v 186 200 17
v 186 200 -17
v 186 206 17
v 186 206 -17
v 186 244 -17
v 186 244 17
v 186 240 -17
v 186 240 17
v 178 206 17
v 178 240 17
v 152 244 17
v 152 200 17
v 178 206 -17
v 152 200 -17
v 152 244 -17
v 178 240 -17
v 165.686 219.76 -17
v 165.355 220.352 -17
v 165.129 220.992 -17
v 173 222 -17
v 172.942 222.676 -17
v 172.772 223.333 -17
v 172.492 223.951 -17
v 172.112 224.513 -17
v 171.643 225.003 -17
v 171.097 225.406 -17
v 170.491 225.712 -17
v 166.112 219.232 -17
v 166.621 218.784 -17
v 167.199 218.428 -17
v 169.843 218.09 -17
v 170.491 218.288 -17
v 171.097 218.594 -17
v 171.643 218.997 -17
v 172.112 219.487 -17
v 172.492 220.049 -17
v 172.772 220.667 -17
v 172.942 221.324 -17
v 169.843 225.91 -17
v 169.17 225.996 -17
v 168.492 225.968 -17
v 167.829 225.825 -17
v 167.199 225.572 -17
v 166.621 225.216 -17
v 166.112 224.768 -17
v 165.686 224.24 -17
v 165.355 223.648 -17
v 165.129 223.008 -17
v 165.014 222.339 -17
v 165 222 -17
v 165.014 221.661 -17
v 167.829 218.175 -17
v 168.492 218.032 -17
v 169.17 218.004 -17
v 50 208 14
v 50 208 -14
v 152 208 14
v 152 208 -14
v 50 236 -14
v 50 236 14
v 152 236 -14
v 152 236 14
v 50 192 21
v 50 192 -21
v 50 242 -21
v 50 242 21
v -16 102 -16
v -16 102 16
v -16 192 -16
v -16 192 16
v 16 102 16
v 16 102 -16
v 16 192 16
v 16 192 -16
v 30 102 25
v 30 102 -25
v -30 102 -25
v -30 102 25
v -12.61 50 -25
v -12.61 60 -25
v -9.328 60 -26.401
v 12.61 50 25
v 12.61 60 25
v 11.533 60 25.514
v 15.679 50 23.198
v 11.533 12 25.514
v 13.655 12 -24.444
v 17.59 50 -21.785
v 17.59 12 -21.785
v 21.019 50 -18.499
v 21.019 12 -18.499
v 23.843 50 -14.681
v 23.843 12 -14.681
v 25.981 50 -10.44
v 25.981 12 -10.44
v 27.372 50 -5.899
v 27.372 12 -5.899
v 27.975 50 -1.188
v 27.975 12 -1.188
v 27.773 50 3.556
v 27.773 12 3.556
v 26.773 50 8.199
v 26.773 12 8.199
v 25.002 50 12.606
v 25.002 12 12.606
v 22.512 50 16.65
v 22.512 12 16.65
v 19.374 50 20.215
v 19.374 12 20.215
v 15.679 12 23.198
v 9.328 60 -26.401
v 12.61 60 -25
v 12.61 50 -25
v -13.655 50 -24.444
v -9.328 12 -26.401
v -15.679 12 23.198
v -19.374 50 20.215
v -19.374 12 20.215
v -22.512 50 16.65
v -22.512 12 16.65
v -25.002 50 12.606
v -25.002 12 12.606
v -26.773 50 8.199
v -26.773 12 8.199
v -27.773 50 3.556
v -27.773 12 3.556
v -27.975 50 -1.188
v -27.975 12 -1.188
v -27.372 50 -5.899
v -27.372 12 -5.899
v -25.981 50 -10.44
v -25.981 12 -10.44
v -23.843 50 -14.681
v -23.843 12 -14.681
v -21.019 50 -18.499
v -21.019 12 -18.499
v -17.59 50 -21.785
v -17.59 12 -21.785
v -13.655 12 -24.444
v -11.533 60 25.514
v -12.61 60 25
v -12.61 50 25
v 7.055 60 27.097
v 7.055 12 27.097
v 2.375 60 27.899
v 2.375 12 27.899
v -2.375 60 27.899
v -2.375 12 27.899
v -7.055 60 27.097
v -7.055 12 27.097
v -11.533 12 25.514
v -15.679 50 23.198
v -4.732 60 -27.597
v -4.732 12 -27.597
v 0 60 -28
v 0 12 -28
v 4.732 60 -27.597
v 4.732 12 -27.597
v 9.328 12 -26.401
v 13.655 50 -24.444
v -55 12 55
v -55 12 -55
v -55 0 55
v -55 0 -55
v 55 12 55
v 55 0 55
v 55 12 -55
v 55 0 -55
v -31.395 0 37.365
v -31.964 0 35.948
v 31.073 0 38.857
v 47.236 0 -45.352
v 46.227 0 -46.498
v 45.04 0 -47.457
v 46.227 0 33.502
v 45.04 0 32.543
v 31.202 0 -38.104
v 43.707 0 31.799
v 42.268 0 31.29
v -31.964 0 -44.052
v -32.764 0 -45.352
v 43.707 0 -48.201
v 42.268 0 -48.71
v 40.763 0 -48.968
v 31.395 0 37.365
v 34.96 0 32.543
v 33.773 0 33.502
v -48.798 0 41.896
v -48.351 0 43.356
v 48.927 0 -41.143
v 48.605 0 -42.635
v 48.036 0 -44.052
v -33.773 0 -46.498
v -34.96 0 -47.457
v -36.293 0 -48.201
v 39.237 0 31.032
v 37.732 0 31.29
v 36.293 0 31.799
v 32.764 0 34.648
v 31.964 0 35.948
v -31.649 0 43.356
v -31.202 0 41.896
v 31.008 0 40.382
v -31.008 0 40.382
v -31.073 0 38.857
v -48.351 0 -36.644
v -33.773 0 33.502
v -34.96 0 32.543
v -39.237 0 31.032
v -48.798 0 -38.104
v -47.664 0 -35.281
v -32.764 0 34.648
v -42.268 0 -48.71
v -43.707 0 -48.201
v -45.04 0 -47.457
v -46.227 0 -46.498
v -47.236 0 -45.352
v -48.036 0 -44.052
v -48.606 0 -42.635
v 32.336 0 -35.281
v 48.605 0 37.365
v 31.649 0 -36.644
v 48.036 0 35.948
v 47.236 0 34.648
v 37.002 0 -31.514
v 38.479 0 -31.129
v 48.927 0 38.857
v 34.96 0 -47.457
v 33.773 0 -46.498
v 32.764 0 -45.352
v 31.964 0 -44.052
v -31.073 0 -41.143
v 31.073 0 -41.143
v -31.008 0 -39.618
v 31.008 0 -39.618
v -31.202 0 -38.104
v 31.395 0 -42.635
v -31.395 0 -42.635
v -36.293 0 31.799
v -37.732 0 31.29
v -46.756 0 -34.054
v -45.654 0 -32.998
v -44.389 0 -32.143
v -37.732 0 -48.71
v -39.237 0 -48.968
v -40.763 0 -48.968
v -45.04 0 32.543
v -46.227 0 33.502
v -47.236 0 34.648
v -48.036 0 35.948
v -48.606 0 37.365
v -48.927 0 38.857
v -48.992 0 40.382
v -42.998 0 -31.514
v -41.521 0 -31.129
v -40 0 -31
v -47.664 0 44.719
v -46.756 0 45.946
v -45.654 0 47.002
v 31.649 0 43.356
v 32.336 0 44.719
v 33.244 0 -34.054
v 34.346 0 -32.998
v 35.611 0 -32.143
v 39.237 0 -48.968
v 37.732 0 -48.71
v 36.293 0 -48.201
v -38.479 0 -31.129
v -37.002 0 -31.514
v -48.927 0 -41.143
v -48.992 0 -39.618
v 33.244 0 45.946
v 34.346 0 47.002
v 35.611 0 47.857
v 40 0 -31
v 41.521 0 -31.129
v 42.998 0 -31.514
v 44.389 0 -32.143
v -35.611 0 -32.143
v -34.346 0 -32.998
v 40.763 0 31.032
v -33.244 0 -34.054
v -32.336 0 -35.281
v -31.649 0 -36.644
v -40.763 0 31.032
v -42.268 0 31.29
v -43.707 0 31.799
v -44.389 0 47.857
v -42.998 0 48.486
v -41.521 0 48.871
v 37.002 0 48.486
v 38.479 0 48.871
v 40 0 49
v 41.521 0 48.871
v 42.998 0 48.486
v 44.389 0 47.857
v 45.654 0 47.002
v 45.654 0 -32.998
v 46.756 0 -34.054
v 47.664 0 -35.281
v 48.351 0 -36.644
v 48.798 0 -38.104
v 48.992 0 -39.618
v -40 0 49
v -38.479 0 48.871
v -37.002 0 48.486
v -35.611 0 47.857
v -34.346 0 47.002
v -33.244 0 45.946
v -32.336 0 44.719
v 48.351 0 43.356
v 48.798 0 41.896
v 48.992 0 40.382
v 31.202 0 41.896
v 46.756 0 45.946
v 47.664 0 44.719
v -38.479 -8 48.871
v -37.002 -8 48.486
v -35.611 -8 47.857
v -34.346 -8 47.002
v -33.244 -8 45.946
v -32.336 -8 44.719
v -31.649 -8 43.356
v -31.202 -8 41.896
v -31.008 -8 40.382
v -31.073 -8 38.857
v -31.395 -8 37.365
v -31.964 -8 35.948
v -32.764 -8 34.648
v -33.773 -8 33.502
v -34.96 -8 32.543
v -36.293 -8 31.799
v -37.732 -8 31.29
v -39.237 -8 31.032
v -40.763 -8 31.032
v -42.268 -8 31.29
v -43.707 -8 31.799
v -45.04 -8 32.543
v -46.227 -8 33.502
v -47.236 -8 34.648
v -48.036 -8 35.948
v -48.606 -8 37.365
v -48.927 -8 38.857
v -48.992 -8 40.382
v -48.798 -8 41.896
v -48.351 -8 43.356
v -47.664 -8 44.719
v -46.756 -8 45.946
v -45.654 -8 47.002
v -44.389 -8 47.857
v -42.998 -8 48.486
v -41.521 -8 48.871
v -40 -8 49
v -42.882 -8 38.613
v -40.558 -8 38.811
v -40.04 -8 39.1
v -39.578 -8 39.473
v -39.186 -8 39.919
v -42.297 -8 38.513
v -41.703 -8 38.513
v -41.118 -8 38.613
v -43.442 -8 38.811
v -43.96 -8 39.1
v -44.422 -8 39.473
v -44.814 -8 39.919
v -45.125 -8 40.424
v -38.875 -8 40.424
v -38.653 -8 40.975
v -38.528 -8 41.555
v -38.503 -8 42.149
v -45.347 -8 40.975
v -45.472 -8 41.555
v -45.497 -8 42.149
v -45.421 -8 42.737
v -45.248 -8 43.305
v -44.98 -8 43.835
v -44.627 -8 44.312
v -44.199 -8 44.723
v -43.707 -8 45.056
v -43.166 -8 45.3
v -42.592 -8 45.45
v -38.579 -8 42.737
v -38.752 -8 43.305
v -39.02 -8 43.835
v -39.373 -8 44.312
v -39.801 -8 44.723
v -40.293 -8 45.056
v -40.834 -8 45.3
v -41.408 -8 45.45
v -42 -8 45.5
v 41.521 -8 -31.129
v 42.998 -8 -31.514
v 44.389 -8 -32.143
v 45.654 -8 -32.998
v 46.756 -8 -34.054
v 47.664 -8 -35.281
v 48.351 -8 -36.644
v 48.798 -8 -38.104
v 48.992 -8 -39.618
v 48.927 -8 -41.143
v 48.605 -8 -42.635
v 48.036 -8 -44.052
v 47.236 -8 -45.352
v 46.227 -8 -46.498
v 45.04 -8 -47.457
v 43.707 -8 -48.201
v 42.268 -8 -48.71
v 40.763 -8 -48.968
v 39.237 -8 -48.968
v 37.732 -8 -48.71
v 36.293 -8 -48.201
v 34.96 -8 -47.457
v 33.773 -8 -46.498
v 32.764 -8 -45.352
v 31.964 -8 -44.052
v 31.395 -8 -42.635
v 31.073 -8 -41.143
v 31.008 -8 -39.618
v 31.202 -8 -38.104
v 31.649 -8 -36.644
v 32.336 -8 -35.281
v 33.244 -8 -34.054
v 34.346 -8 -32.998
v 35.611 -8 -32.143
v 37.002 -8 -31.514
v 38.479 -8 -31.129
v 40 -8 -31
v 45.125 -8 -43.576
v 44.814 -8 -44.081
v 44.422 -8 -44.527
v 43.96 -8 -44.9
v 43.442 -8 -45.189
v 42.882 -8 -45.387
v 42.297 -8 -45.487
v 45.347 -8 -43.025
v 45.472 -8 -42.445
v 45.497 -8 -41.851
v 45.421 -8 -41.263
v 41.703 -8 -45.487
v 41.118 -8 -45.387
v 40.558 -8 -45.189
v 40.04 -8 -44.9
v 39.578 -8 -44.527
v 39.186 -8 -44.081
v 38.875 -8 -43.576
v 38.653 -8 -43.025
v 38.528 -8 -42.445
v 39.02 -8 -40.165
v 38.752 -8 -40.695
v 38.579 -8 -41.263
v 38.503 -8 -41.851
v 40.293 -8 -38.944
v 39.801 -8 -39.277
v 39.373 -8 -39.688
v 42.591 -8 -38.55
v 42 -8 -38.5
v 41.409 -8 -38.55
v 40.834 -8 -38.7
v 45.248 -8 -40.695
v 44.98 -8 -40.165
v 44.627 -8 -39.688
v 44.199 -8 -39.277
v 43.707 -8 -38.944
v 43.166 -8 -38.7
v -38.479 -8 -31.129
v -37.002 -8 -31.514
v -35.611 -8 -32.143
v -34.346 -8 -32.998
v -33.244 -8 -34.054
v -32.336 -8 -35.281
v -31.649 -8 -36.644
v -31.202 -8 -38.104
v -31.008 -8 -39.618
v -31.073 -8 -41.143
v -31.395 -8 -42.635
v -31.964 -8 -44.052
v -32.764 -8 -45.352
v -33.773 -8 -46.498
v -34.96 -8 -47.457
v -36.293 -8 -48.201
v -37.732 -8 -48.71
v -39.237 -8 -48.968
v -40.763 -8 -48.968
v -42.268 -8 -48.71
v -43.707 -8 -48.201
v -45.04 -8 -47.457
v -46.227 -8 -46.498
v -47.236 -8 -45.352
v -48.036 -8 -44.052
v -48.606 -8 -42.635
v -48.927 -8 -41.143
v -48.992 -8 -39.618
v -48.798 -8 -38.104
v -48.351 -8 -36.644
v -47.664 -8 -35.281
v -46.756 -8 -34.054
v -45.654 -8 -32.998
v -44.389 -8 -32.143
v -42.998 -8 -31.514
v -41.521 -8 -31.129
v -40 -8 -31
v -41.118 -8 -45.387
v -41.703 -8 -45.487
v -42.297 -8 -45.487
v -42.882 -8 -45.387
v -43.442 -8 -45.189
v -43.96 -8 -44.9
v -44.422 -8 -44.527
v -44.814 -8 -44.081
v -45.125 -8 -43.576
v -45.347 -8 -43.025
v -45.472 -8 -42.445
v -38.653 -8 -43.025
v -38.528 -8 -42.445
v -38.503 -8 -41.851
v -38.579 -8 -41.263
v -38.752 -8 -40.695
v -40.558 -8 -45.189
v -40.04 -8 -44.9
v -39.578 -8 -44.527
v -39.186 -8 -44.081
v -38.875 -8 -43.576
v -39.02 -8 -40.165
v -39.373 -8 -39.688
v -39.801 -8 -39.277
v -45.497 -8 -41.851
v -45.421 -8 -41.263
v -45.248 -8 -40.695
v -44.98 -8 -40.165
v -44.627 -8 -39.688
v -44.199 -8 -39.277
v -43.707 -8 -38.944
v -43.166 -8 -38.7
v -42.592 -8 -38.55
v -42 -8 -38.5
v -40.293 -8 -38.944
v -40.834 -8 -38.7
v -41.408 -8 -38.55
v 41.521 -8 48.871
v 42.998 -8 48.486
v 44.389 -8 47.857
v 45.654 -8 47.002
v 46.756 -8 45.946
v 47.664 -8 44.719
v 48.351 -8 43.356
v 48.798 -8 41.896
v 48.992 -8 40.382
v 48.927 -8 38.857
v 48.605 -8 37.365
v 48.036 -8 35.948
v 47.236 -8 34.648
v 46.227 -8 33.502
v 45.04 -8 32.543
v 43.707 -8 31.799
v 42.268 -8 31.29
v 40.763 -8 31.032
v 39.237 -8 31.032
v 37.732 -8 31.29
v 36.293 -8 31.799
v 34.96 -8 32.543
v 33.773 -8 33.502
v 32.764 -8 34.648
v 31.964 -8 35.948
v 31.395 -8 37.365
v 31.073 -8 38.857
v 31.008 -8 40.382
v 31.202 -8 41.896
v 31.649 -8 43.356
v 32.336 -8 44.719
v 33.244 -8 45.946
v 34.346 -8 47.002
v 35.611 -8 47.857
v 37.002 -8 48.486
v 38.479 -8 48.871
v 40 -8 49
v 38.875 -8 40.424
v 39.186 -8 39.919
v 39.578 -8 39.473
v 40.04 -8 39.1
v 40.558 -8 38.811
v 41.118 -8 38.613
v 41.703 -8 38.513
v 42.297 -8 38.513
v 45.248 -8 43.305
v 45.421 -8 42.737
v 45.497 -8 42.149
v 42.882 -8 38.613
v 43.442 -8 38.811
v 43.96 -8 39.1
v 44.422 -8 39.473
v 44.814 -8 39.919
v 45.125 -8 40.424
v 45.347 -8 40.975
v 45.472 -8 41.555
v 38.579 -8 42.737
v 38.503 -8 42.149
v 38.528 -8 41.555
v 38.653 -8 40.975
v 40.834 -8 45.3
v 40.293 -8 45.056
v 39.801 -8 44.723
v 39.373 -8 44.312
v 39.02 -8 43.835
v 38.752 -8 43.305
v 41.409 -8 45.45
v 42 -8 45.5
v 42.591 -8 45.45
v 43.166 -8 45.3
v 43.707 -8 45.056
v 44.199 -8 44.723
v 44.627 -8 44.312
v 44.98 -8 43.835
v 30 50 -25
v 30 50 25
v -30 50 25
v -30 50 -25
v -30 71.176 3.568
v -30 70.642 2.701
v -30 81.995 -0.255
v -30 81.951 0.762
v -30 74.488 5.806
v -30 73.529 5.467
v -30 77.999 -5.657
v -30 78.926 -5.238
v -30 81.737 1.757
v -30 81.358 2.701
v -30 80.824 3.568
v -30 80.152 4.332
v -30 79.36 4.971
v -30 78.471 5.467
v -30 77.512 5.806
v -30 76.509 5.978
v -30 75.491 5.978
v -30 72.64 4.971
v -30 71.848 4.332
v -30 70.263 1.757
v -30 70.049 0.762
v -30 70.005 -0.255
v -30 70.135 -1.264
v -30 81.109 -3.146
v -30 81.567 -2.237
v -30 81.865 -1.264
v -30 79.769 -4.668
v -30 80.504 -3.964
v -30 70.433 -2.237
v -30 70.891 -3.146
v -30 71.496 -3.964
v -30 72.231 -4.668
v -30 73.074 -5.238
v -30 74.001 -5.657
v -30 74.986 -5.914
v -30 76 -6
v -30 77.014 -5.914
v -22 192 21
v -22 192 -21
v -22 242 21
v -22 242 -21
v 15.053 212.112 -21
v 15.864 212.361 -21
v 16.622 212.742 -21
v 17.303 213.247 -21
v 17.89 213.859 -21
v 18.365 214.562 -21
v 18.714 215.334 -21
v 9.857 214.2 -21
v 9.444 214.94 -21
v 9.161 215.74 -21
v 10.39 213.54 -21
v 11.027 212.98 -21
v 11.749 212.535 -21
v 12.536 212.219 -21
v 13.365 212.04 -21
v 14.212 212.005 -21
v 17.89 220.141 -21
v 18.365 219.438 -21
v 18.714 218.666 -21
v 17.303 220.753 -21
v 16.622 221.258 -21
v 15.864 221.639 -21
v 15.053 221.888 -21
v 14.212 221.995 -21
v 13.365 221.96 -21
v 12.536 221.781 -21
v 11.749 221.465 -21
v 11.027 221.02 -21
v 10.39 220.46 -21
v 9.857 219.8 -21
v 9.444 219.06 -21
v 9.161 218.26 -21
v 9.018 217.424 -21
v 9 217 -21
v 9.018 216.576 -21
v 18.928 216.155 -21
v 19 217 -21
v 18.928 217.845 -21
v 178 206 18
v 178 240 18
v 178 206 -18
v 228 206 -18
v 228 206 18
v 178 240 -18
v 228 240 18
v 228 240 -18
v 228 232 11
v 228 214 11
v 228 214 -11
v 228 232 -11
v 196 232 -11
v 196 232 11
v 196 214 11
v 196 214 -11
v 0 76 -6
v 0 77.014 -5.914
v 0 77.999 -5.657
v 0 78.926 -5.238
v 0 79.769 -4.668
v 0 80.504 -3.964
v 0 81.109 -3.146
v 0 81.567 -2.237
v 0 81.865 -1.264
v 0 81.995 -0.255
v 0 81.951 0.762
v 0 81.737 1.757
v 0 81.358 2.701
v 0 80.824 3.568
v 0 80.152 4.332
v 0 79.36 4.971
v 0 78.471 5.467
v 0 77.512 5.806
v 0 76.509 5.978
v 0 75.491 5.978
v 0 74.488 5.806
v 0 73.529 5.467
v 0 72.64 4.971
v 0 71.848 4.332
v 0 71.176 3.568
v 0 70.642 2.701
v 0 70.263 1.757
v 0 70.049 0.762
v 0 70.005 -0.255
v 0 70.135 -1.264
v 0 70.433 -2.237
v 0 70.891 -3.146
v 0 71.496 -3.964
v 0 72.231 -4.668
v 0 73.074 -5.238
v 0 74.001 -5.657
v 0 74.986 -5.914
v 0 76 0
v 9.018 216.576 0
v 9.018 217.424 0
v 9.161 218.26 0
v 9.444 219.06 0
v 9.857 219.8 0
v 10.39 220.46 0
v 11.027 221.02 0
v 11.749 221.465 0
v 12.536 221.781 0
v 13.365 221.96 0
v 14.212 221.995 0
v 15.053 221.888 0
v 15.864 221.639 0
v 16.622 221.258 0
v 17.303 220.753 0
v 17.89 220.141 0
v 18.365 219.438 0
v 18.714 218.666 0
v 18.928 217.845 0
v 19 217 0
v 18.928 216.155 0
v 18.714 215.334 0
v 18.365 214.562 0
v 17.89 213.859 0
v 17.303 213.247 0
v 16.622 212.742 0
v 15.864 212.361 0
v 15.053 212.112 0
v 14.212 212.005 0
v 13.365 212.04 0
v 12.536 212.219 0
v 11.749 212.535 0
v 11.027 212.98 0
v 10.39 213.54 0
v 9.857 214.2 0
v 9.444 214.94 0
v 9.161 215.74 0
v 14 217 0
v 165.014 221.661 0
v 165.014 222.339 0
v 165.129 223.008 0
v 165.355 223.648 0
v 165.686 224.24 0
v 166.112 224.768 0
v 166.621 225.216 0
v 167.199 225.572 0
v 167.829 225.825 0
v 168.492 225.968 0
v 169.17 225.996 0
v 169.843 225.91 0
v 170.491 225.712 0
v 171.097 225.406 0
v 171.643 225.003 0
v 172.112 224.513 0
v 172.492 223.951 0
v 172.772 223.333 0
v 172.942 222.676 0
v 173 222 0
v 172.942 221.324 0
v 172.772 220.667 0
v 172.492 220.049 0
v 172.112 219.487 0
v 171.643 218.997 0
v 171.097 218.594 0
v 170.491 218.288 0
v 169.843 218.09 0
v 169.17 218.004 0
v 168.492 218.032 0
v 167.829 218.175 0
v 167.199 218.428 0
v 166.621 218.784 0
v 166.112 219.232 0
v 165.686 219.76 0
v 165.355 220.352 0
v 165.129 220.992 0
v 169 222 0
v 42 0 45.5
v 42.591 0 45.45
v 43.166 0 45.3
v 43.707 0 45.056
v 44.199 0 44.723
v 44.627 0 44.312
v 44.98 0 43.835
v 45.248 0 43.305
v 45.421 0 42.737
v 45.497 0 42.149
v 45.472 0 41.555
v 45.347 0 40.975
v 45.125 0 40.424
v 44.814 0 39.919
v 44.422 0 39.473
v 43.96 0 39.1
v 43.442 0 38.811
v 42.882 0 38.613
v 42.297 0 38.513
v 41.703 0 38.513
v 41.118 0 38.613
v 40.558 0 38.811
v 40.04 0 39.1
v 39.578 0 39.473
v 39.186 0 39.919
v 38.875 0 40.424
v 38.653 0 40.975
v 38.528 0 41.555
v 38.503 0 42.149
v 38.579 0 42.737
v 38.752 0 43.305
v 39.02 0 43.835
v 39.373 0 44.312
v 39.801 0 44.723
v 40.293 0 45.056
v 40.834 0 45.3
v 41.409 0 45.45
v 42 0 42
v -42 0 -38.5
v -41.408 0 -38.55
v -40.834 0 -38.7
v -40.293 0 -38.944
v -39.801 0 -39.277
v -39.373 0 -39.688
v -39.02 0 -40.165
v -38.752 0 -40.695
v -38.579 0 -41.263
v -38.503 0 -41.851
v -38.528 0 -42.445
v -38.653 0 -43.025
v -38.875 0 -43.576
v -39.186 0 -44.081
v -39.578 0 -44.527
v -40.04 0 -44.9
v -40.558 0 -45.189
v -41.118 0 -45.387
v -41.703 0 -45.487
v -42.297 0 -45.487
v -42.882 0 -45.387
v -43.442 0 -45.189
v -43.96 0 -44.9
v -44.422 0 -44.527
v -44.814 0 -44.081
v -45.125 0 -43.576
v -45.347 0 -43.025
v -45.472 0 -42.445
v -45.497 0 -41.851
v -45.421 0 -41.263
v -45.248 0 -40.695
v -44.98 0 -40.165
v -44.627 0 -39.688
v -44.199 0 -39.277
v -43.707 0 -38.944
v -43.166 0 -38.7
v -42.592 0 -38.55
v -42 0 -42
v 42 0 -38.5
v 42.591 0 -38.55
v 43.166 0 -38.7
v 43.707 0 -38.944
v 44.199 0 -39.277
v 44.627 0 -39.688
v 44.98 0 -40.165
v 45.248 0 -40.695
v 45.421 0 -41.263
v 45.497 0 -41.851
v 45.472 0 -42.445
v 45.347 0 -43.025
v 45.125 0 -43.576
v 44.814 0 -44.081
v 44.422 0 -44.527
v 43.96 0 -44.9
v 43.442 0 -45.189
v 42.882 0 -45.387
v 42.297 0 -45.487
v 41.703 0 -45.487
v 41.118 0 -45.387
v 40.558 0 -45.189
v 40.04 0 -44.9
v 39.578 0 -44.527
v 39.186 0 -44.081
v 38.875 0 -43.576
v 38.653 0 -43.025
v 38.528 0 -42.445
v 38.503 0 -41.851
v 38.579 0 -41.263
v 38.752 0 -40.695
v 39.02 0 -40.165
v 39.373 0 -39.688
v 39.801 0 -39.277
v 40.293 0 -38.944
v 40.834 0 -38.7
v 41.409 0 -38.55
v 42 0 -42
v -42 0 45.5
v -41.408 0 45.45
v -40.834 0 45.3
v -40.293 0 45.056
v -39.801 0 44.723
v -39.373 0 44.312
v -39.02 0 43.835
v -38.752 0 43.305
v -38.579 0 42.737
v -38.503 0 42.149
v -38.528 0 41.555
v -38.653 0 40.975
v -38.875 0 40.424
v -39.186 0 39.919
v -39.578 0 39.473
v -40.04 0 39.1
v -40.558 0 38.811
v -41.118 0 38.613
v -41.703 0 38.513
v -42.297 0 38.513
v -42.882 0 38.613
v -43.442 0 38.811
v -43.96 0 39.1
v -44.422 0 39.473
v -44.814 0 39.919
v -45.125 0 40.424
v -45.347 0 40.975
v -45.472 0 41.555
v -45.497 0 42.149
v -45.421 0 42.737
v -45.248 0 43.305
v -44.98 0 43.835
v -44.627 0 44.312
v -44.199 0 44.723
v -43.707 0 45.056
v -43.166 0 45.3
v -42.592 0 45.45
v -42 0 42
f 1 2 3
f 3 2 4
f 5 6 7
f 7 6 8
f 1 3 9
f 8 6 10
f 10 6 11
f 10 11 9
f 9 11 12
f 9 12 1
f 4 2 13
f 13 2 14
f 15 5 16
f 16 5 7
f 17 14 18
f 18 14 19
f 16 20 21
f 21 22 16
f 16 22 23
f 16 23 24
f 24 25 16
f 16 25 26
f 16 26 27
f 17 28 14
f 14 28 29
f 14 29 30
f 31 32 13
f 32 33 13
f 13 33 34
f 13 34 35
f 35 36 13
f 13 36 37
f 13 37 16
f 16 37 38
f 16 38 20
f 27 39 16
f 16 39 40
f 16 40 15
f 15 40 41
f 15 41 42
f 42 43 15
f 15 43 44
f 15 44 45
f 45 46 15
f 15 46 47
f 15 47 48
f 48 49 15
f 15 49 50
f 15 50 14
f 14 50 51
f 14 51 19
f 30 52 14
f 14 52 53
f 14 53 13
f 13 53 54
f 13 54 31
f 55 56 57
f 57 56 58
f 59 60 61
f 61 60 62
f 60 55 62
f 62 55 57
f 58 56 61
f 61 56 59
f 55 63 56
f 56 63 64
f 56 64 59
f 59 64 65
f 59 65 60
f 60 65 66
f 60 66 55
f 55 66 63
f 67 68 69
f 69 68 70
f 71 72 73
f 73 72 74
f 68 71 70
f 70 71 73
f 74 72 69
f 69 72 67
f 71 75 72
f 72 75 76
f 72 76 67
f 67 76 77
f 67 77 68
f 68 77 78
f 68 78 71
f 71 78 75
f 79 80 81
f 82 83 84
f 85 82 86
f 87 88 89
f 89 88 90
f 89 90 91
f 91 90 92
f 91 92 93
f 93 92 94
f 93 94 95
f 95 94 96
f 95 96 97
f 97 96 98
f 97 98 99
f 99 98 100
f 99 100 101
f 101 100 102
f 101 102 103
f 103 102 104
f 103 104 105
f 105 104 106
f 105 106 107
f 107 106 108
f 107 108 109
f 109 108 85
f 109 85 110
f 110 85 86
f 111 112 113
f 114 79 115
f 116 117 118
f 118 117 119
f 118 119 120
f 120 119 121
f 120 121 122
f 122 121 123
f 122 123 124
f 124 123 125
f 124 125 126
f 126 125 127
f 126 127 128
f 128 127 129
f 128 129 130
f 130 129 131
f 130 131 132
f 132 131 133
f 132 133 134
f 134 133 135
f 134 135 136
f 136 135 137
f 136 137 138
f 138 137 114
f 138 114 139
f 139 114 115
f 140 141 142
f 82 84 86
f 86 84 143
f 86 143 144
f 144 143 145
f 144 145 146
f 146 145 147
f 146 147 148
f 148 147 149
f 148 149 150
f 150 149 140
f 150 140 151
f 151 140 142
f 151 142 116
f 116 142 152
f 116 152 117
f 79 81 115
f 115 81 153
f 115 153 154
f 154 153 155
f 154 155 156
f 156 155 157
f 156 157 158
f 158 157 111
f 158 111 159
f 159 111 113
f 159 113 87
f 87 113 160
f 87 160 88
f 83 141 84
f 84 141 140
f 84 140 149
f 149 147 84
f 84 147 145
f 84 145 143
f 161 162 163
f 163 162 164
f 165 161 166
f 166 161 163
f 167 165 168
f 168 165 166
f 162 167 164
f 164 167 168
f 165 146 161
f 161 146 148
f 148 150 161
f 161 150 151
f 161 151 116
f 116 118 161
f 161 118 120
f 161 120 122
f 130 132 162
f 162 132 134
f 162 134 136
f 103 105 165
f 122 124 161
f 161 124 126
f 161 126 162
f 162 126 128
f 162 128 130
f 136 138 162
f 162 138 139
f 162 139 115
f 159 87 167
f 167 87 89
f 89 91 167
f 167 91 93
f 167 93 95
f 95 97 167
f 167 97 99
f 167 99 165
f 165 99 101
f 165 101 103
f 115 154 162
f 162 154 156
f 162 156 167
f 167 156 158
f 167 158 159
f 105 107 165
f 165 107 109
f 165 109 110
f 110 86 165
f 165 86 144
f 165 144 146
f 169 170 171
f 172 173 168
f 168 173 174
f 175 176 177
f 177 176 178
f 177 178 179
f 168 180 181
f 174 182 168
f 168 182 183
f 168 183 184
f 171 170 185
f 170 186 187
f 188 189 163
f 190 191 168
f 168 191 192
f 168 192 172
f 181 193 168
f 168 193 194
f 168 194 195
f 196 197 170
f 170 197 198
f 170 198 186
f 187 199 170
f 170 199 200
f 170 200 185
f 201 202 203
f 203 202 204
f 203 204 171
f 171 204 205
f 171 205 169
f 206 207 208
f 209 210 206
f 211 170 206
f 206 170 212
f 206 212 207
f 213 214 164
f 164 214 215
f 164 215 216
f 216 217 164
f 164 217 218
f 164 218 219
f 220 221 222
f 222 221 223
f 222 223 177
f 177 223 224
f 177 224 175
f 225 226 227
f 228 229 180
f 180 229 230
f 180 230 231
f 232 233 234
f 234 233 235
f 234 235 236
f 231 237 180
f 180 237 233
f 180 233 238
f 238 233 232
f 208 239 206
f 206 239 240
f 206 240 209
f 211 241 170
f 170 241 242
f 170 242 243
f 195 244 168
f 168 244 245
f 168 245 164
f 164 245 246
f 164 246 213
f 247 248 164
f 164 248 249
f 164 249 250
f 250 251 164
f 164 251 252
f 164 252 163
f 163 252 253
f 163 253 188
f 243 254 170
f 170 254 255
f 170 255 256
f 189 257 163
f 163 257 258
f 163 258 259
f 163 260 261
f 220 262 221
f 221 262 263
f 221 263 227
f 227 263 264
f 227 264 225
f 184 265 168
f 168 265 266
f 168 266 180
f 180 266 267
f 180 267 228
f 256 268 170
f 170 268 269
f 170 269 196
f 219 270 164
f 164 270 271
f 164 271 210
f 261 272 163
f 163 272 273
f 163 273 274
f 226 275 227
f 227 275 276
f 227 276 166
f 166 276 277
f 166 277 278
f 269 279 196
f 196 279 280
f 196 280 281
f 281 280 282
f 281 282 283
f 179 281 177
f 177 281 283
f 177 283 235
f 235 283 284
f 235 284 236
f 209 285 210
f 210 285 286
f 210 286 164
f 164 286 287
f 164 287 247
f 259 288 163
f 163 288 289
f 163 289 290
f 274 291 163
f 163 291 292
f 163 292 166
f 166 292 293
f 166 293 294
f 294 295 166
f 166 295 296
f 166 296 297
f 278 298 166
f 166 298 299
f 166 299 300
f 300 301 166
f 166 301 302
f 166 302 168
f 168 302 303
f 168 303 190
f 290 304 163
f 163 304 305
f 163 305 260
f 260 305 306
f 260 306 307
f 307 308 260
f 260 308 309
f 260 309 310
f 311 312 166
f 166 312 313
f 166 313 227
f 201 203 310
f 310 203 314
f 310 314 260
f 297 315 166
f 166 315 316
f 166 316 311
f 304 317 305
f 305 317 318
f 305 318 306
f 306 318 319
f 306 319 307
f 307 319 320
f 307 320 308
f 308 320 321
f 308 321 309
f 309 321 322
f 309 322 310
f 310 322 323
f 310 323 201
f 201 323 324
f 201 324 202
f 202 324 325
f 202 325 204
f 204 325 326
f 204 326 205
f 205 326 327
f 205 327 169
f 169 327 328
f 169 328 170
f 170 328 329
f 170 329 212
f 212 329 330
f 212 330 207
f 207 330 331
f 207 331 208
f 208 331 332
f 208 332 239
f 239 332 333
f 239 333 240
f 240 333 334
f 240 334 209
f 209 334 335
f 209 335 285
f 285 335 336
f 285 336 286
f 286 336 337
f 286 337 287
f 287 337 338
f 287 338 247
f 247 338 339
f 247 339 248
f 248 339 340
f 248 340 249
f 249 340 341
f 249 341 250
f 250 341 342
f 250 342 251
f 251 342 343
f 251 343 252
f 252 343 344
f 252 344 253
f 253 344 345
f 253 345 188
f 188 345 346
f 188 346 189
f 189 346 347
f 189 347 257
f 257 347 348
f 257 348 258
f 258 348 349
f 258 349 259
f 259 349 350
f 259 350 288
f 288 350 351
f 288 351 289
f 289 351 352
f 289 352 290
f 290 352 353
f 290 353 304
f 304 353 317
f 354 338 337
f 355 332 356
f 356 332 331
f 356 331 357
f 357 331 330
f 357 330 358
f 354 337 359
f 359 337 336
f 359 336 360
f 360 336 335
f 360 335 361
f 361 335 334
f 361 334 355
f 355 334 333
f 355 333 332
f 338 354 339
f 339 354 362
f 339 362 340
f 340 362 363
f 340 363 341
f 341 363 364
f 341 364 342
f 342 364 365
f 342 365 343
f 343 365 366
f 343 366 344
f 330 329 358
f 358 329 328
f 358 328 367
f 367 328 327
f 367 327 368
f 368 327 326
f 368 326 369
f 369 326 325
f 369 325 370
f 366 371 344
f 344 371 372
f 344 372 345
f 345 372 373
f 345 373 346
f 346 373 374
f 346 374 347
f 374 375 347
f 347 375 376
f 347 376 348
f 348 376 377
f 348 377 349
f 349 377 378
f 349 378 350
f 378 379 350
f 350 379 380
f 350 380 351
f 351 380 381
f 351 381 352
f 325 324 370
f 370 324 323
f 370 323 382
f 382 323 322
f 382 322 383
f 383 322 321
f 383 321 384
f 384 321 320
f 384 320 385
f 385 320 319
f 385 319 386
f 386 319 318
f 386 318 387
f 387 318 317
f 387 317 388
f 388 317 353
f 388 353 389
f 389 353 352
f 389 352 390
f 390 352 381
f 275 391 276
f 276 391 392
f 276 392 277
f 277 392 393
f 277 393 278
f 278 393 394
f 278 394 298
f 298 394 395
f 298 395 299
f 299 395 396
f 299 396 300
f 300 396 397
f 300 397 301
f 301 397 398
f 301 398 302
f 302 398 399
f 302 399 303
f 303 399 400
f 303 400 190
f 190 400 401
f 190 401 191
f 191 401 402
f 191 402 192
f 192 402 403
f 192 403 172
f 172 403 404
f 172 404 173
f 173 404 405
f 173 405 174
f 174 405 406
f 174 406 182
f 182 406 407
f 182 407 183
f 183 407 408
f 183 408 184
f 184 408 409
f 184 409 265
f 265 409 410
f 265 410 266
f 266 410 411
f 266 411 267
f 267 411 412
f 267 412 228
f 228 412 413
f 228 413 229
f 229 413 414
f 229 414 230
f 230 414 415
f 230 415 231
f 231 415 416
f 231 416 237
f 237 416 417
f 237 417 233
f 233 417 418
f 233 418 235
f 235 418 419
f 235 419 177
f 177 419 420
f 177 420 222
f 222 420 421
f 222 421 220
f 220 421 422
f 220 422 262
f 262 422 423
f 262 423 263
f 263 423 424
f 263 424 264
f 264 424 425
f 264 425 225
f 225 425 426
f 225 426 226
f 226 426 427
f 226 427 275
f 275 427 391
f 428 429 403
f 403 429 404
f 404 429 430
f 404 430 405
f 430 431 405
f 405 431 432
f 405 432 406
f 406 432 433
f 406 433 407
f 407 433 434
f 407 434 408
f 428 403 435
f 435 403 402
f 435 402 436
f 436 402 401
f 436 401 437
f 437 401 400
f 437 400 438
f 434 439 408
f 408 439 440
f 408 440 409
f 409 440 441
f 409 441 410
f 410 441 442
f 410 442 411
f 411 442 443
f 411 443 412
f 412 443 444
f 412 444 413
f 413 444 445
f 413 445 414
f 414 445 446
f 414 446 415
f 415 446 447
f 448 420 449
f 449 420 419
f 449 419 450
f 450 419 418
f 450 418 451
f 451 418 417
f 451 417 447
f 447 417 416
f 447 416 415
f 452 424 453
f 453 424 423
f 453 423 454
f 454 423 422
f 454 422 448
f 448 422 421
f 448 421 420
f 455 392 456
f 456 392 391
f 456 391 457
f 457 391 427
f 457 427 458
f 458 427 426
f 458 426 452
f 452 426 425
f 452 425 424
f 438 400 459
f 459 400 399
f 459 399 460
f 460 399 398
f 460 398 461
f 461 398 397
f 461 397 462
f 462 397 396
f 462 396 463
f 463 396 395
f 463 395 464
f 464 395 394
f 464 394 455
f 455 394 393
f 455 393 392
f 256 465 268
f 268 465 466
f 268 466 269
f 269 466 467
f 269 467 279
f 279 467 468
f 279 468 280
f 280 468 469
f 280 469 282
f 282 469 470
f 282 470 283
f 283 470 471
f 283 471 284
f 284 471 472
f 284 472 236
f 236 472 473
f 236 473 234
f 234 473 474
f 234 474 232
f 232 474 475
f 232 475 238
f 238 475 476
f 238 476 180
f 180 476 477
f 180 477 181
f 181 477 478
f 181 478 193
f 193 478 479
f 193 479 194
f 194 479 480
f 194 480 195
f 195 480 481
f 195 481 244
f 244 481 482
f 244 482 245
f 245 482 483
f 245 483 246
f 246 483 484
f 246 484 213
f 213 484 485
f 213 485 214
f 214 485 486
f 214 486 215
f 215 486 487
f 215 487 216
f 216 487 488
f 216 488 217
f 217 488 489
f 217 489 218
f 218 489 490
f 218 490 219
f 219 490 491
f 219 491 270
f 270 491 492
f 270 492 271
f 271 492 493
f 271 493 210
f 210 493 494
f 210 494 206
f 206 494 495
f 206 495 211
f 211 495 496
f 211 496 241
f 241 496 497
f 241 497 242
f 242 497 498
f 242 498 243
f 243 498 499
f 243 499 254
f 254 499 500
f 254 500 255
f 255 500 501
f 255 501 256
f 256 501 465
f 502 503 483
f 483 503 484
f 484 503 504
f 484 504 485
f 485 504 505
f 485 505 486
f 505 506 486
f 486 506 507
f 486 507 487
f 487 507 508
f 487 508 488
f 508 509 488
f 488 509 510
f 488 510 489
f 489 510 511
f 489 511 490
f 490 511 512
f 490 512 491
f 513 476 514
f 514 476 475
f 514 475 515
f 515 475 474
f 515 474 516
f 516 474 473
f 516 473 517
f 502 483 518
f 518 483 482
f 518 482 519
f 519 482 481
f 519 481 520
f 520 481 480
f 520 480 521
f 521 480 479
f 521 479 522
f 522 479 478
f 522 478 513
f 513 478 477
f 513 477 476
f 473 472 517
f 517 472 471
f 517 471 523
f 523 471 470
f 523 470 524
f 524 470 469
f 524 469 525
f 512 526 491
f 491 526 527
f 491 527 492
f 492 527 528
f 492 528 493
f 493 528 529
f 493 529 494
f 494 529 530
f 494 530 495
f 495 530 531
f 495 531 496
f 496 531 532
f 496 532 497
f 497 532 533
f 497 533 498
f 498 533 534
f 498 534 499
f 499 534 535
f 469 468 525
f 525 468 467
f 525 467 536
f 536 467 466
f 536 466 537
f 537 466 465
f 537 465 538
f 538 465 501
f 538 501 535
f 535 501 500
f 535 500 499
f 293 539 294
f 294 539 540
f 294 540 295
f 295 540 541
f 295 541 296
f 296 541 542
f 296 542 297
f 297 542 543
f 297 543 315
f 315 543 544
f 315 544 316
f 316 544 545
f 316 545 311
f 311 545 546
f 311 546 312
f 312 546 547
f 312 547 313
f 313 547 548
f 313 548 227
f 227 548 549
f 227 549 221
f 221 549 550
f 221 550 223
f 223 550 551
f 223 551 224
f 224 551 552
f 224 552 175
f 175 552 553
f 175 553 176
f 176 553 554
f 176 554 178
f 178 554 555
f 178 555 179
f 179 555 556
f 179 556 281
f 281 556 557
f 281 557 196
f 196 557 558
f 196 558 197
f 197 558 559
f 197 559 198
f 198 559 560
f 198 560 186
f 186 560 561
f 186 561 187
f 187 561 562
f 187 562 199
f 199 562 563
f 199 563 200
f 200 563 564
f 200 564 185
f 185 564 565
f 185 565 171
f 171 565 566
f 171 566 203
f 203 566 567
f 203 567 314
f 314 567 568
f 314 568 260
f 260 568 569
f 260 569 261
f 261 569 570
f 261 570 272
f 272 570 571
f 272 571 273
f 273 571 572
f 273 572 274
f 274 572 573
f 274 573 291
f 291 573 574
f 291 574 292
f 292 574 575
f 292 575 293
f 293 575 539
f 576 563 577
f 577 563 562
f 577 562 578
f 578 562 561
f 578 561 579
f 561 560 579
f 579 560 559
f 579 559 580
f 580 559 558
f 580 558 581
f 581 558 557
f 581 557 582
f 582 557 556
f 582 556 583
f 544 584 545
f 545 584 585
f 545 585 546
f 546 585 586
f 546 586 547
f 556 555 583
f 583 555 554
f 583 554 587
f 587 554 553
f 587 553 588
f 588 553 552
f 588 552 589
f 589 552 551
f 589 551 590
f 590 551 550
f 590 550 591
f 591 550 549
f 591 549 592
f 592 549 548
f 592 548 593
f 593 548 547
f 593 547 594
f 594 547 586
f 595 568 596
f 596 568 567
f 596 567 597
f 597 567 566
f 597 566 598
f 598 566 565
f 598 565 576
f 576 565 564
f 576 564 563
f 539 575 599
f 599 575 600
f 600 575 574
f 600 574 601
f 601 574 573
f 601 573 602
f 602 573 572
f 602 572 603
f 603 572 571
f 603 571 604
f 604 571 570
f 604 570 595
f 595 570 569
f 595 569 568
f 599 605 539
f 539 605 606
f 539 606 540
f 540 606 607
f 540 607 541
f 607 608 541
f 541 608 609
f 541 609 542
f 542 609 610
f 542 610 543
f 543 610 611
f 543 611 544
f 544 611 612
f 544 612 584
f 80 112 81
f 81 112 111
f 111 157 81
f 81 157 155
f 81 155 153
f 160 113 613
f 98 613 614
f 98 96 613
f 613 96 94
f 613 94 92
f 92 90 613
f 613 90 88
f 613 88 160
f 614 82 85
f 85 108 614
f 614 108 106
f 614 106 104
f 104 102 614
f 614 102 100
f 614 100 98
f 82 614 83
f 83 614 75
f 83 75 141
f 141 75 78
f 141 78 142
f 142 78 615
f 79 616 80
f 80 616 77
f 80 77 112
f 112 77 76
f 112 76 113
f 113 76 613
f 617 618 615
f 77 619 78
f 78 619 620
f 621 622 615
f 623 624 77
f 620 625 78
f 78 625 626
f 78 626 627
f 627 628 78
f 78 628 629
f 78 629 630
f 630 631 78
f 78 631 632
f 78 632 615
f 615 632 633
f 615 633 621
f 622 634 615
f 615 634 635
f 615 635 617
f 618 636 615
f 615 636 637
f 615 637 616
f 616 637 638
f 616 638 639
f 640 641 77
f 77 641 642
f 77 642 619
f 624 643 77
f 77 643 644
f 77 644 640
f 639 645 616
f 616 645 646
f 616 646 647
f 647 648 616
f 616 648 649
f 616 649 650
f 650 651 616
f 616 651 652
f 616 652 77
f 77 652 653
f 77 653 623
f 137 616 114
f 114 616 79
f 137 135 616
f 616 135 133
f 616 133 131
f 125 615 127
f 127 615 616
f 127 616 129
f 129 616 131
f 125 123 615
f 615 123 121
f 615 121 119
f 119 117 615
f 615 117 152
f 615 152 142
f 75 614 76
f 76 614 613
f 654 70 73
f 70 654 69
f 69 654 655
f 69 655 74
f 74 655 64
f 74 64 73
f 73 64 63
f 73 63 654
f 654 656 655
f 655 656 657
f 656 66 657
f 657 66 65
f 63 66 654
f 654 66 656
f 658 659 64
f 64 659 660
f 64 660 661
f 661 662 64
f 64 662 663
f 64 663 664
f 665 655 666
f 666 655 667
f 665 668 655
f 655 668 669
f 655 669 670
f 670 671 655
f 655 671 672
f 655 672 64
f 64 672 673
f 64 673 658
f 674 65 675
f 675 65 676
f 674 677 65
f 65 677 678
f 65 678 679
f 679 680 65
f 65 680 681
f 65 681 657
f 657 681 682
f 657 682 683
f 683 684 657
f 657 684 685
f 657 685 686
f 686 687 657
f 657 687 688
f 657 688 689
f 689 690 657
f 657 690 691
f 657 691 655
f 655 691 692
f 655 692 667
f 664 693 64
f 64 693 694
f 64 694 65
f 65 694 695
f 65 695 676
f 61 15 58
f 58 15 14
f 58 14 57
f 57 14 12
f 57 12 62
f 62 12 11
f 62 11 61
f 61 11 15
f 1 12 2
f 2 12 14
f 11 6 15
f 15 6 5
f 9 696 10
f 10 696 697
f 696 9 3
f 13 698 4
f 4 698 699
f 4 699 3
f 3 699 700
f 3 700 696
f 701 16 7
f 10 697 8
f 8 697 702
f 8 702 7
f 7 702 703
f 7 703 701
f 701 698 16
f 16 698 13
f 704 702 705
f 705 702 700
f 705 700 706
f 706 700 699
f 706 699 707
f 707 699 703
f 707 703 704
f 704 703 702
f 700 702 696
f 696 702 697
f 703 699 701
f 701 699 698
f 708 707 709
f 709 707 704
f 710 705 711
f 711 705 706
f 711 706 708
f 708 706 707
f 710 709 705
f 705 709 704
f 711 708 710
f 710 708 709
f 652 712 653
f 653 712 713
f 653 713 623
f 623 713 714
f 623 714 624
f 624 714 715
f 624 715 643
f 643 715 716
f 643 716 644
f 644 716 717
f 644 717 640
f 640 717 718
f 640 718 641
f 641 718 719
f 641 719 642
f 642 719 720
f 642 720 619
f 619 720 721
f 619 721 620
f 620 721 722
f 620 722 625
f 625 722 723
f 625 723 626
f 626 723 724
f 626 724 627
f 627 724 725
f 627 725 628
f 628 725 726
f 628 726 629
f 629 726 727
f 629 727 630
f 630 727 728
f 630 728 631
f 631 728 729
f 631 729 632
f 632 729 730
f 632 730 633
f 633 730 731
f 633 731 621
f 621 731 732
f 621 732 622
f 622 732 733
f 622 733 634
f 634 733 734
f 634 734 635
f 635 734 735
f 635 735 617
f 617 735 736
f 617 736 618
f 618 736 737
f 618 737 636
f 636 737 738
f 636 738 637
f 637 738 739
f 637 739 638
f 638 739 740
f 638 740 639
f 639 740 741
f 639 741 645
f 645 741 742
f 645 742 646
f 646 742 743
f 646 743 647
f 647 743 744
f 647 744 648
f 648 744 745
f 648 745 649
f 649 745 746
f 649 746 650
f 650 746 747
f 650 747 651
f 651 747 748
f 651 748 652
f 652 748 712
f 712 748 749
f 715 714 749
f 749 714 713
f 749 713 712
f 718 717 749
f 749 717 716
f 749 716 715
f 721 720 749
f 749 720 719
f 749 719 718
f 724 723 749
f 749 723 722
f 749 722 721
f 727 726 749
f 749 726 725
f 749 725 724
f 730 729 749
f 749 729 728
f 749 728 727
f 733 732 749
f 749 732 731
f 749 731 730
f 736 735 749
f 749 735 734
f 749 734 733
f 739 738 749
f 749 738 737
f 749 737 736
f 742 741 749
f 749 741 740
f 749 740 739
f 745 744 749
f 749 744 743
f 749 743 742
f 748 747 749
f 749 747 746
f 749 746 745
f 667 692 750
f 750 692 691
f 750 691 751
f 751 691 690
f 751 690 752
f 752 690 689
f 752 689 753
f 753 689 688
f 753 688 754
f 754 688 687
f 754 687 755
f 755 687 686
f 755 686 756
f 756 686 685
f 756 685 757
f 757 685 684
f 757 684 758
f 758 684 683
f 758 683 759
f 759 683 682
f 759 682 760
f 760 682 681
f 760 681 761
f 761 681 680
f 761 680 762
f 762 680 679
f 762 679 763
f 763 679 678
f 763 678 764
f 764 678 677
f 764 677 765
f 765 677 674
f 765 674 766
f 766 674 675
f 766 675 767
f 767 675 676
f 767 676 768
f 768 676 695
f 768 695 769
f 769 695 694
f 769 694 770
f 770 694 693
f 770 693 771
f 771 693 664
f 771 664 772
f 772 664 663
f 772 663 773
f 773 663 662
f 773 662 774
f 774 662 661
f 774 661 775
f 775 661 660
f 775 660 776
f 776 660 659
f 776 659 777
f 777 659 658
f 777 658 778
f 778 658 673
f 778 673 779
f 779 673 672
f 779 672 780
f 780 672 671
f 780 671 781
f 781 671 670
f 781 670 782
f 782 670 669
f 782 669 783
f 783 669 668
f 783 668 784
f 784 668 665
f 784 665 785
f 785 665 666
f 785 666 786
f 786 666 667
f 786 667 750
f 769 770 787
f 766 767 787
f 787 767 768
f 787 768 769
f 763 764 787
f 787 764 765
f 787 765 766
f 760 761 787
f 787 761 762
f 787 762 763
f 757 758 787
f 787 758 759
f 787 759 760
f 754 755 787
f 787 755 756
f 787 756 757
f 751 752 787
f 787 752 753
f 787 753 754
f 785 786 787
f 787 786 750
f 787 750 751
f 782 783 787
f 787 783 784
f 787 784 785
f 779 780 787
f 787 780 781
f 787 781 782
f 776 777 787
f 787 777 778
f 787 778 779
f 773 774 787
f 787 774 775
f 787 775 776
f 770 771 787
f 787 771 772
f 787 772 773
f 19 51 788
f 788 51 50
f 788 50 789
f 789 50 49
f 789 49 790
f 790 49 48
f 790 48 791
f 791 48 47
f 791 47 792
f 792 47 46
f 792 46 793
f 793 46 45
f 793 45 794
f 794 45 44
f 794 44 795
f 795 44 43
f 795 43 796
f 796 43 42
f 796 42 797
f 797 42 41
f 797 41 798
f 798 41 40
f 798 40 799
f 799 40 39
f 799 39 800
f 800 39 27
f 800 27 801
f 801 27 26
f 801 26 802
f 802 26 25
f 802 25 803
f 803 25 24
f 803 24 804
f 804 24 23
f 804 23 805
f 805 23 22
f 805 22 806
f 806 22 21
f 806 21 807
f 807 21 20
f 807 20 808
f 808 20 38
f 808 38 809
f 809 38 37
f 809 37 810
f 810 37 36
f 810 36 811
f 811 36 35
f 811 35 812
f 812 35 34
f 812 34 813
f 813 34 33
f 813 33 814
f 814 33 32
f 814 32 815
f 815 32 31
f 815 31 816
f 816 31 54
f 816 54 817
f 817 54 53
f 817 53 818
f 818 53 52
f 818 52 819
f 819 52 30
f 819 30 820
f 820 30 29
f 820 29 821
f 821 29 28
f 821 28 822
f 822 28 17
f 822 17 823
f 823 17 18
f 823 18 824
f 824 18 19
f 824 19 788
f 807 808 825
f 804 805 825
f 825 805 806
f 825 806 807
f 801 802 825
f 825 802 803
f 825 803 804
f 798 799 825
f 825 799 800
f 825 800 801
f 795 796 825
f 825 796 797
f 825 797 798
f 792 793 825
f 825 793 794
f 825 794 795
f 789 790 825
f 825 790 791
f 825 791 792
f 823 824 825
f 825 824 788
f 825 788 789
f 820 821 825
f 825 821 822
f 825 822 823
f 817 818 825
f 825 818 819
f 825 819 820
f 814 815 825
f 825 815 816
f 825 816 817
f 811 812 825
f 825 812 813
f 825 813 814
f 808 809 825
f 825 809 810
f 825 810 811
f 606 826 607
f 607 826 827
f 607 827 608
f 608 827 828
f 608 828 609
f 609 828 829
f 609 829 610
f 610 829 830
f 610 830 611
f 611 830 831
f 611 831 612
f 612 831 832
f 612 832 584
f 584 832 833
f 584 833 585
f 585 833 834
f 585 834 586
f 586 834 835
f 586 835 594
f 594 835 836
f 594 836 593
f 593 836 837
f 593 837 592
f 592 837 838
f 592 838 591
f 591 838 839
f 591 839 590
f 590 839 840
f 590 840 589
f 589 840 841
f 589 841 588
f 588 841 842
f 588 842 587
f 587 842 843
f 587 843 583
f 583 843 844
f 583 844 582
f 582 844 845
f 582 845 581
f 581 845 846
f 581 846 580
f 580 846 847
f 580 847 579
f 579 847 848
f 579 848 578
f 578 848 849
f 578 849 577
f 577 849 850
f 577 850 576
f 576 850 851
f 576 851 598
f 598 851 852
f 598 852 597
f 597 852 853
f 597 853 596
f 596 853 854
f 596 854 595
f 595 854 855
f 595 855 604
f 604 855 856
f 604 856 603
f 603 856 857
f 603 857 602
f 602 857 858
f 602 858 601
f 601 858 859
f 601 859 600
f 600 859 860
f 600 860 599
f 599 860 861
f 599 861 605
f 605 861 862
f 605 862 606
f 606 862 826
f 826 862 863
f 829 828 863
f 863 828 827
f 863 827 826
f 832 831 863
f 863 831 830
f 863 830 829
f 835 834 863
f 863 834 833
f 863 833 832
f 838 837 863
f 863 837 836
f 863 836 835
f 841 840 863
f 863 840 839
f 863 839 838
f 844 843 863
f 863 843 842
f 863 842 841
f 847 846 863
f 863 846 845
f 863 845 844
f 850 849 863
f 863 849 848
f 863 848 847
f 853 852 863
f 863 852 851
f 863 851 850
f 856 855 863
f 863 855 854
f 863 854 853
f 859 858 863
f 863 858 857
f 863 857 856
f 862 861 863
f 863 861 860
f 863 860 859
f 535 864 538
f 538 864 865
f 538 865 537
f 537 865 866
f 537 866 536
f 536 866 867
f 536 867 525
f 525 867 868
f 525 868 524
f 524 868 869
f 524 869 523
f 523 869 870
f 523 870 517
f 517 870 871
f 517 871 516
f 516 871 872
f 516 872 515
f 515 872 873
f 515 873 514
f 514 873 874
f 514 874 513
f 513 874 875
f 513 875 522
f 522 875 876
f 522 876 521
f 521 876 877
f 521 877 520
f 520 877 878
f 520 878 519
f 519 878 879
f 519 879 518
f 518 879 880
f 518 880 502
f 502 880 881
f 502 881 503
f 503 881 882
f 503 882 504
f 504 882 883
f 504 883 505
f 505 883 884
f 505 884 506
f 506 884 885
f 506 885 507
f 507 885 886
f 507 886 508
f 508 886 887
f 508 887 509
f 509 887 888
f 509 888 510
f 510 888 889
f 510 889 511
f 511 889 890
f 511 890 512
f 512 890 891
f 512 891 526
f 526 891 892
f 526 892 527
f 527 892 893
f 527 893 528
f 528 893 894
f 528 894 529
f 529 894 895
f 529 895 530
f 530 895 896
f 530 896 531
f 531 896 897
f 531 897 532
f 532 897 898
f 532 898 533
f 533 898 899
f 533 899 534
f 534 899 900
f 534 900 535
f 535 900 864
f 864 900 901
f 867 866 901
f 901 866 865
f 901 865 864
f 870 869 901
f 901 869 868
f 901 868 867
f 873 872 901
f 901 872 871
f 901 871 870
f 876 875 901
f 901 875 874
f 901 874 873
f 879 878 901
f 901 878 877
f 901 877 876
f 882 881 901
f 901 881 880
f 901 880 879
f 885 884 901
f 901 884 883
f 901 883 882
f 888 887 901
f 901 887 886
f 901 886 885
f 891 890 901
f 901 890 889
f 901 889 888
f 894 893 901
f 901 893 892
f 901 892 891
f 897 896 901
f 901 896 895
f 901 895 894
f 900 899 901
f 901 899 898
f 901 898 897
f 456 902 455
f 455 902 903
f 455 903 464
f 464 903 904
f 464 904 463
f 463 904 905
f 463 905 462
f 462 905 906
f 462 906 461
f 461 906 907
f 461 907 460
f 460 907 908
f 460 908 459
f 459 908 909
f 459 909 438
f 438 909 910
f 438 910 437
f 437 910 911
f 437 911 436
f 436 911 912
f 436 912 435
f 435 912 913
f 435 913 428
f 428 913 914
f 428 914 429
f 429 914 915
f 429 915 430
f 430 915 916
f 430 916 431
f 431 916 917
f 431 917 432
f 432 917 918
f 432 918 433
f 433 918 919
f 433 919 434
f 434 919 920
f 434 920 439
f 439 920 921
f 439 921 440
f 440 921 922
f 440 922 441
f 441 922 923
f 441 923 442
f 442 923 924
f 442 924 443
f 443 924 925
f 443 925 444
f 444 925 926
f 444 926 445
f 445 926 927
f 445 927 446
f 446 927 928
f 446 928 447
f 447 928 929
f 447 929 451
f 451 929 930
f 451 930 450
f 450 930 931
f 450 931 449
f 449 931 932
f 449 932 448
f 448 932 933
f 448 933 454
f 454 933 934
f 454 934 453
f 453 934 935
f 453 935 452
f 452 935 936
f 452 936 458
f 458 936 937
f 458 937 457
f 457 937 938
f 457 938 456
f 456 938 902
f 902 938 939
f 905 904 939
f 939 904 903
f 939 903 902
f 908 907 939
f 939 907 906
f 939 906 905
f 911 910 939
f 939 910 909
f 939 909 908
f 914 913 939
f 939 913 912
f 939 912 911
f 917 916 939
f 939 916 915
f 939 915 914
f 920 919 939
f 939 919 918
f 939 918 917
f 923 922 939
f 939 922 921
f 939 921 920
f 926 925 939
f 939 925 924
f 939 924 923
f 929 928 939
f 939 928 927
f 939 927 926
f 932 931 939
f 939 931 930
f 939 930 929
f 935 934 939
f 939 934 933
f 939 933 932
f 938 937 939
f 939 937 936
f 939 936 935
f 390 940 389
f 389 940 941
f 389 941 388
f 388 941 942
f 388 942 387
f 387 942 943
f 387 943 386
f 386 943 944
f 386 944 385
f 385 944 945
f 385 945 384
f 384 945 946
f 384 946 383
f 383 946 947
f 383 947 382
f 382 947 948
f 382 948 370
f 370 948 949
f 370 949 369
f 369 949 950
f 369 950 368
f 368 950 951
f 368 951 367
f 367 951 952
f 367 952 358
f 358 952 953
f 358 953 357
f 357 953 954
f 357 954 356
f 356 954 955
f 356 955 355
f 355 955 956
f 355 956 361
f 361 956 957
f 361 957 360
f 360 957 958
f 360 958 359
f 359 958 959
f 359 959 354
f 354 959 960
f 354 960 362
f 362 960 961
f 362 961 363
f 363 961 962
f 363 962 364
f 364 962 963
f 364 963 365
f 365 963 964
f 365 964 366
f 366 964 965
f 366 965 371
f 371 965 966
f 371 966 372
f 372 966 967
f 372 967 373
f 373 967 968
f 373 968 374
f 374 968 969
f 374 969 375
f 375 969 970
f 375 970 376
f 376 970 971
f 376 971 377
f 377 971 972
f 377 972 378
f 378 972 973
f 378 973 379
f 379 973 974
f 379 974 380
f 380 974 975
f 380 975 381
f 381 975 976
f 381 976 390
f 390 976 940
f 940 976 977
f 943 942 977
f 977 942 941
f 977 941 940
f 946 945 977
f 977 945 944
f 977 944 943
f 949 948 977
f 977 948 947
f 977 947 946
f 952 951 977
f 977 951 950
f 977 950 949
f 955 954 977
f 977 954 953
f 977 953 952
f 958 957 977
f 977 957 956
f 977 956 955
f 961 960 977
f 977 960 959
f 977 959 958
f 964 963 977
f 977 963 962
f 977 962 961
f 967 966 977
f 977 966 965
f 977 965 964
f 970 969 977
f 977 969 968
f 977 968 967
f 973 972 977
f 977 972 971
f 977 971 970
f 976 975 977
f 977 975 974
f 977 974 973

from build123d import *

# Parameters (mm, degrees)
SKETCH1_W            = 110
SKETCH1_H            = 110
BOSS_EXTRUDE1_DEPTH  = 12
SKETCH2_R            = 9
BOSS_EXTRUDE2_DEPTH  = 8
SKETCH3_R            = 28
BOSS_EXTRUDE3_DEPTH  = 60
SKETCH4_W            = 60
SKETCH4_H            = 52
BOSS_EXTRUDE4_DEPTH  = 25
SKETCH5_W            = 32
SKETCH5_H            = 107
BOSS_EXTRUDE5_DEPTH  = 16
SKETCH6_W            = 72
SKETCH6_H            = 50
BOSS_EXTRUDE6_DEPTH  = 21
SKETCH7_R            = 18
BOSS_EXTRUDE7_DEPTH  = 6
SKETCH8_W            = 115
SKETCH8_H            = 28
BOSS_EXTRUDE8_DEPTH  = 14
SKETCH9_W            = 34
SKETCH9_H            = 44
BOSS_EXTRUDE9_DEPTH  = 17
SKETCH10_R           = 13
BOSS_EXTRUDE10_DEPTH = 15
SKETCH11_W           = 50
SKETCH11_H           = 34
BOSS_EXTRUDE11_DEPTH = 18
SKETCH12_W           = 36
SKETCH12_H           = 18
CUT_EXTRUDE1_DEPTH   = 11
SKETCH13_R           = 6
CUT_EXTRUDE2_DEPTH   = 339.444973371
SKETCH14_R           = 5
CUT_EXTRUDE3_DEPTH   = 339.444973371
SKETCH15_R           = 4
CUT_EXTRUDE4_DEPTH   = 339.444973371
SKETCH16_R           = 3.5
CUT_EXTRUDE5_DEPTH   = 339.444973371


with BuildPart() as part:
    # Sketch1 → Boss-Extrude1 (new body)
    with BuildSketch(Plane(origin=(0, 0, 0), x_dir=(1, 0, 0), z_dir=(0, 1, 0))):
        Rectangle(SKETCH1_W, SKETCH1_H)
    extrude(amount=BOSS_EXTRUDE1_DEPTH)

    # Sketch2 → Boss-Extrude2 (add)
    with BuildSketch(Plane(origin=(0, 0, 0), x_dir=(1, 0, 0), z_dir=(0, 1, 0))):
        with Locations(Location((-40, -40, 0), (0, 0, 270))):
            Circle(SKETCH2_R)
        with Locations(Location((40, -40, 0), (0, 0, 270))):
            Circle(SKETCH2_R)
        with Locations(Location((-40, 40, 0), (0, 0, 270))):
            Circle(SKETCH2_R)
        with Locations(Location((40, 40, 0), (0, 0, 270))):
            Circle(SKETCH2_R)
    extrude(amount=-BOSS_EXTRUDE2_DEPTH)

    # Sketch3 → Boss-Extrude3 (add)
    with BuildSketch(Plane(origin=(0, 0, 0), x_dir=(1, 0, 0), z_dir=(0, 1, 0))):
        with Locations(Location((0, 0, 0), (0, 0, 90))):
            Circle(SKETCH3_R)
    extrude(amount=BOSS_EXTRUDE3_DEPTH)

    # Sketch4 → Boss-Extrude4 (add, symmetric)
    with BuildSketch(Plane.XY):
        with Locations((0, 76)):
            Rectangle(SKETCH4_W, SKETCH4_H)
    extrude(amount=BOSS_EXTRUDE4_DEPTH, both=True)

    # Sketch5 → Boss-Extrude5 (add, symmetric)
    with BuildSketch(Plane.XY):
        with Locations((0, 151.5)):
            Rectangle(SKETCH5_W, SKETCH5_H)
    extrude(amount=BOSS_EXTRUDE5_DEPTH, both=True)

    # Sketch6 → Boss-Extrude6 (add, symmetric)
    with BuildSketch(Plane.XY):
        with Locations((14, 217)):
            Rectangle(SKETCH6_W, SKETCH6_H)
    extrude(amount=BOSS_EXTRUDE6_DEPTH, both=True)

    # Sketch7 → Boss-Extrude7 (add, symmetric)
    with BuildSketch(Plane.XY):
        with Locations((14, 217)):
            Circle(SKETCH7_R)
    extrude(amount=BOSS_EXTRUDE7_DEPTH, both=True)

    # Sketch8 → Boss-Extrude8 (add, symmetric)
    with BuildSketch(Plane.XY):
        with Locations((102.5, 222)):
            Rectangle(SKETCH8_W, SKETCH8_H)
    extrude(amount=BOSS_EXTRUDE8_DEPTH, both=True)

    # Sketch9 → Boss-Extrude9 (add, symmetric)
    with BuildSketch(Plane.XY):
        with Locations((169, 222)):
            Rectangle(SKETCH9_W, SKETCH9_H)
    extrude(amount=BOSS_EXTRUDE9_DEPTH, both=True)

    # Sketch10 → Boss-Extrude10 (add, symmetric)
    with BuildSketch(Plane.XY):
        with Locations((186, 222)):
            Circle(SKETCH10_R)
    extrude(amount=BOSS_EXTRUDE10_DEPTH, both=True)

    # Sketch11 → Boss-Extrude11 (add, symmetric)
    with BuildSketch(Plane.XY):
        with Locations((203, 223)):
            Rectangle(SKETCH11_W, SKETCH11_H)
    extrude(amount=BOSS_EXTRUDE11_DEPTH, both=True)

    # Sketch12 → Cut-Extrude1 (cut, symmetric)
    with BuildSketch(Plane.XY):
        with Locations((214, 223)):
            Rectangle(SKETCH12_W, SKETCH12_H)
    extrude(amount=CUT_EXTRUDE1_DEPTH, both=True, mode=Mode.SUBTRACT)

    # Sketch13 → Cut-Extrude2 (cut, through all)
    with BuildSketch(Plane(origin=(0, 0, 0), x_dir=(0, 0, -1), z_dir=(1, 0, 0))):
        with Locations((0, 76)):
            Circle(SKETCH13_R)
    extrude(amount=-CUT_EXTRUDE2_DEPTH, mode=Mode.SUBTRACT)

    # Sketch14 → Cut-Extrude3 (cut, through all)
    with BuildSketch(Plane.XY):
        with Locations((14, 217)):
            Circle(SKETCH14_R)
    extrude(amount=-CUT_EXTRUDE3_DEPTH, mode=Mode.SUBTRACT)

    # Sketch15 → Cut-Extrude4 (cut, through all)
    with BuildSketch(Plane.XY):
        with Locations((169, 222)):
            Circle(SKETCH15_R)
    extrude(amount=-CUT_EXTRUDE4_DEPTH, mode=Mode.SUBTRACT)

    # Sketch16 → Cut-Extrude5 (cut, through all)
    with BuildSketch(Plane(origin=(0, 0, 0), x_dir=(1, 0, 0), z_dir=(0, 1, 0))):
        with Locations(Location((-42, -42, 0), (0, 0, 270))):
            Circle(SKETCH16_R)
        with Locations(Location((42, -42, 0), (0, 0, 270))):
            Circle(SKETCH16_R)
        with Locations(Location((-42, 42, 0), (0, 0, 270))):
            Circle(SKETCH16_R)
        with Locations(Location((42, 42, 0), (0, 0, 270))):
            Circle(SKETCH16_R)
    extrude(amount=-CUT_EXTRUDE5_DEPTH, mode=Mode.SUBTRACT)


solid = part.part
